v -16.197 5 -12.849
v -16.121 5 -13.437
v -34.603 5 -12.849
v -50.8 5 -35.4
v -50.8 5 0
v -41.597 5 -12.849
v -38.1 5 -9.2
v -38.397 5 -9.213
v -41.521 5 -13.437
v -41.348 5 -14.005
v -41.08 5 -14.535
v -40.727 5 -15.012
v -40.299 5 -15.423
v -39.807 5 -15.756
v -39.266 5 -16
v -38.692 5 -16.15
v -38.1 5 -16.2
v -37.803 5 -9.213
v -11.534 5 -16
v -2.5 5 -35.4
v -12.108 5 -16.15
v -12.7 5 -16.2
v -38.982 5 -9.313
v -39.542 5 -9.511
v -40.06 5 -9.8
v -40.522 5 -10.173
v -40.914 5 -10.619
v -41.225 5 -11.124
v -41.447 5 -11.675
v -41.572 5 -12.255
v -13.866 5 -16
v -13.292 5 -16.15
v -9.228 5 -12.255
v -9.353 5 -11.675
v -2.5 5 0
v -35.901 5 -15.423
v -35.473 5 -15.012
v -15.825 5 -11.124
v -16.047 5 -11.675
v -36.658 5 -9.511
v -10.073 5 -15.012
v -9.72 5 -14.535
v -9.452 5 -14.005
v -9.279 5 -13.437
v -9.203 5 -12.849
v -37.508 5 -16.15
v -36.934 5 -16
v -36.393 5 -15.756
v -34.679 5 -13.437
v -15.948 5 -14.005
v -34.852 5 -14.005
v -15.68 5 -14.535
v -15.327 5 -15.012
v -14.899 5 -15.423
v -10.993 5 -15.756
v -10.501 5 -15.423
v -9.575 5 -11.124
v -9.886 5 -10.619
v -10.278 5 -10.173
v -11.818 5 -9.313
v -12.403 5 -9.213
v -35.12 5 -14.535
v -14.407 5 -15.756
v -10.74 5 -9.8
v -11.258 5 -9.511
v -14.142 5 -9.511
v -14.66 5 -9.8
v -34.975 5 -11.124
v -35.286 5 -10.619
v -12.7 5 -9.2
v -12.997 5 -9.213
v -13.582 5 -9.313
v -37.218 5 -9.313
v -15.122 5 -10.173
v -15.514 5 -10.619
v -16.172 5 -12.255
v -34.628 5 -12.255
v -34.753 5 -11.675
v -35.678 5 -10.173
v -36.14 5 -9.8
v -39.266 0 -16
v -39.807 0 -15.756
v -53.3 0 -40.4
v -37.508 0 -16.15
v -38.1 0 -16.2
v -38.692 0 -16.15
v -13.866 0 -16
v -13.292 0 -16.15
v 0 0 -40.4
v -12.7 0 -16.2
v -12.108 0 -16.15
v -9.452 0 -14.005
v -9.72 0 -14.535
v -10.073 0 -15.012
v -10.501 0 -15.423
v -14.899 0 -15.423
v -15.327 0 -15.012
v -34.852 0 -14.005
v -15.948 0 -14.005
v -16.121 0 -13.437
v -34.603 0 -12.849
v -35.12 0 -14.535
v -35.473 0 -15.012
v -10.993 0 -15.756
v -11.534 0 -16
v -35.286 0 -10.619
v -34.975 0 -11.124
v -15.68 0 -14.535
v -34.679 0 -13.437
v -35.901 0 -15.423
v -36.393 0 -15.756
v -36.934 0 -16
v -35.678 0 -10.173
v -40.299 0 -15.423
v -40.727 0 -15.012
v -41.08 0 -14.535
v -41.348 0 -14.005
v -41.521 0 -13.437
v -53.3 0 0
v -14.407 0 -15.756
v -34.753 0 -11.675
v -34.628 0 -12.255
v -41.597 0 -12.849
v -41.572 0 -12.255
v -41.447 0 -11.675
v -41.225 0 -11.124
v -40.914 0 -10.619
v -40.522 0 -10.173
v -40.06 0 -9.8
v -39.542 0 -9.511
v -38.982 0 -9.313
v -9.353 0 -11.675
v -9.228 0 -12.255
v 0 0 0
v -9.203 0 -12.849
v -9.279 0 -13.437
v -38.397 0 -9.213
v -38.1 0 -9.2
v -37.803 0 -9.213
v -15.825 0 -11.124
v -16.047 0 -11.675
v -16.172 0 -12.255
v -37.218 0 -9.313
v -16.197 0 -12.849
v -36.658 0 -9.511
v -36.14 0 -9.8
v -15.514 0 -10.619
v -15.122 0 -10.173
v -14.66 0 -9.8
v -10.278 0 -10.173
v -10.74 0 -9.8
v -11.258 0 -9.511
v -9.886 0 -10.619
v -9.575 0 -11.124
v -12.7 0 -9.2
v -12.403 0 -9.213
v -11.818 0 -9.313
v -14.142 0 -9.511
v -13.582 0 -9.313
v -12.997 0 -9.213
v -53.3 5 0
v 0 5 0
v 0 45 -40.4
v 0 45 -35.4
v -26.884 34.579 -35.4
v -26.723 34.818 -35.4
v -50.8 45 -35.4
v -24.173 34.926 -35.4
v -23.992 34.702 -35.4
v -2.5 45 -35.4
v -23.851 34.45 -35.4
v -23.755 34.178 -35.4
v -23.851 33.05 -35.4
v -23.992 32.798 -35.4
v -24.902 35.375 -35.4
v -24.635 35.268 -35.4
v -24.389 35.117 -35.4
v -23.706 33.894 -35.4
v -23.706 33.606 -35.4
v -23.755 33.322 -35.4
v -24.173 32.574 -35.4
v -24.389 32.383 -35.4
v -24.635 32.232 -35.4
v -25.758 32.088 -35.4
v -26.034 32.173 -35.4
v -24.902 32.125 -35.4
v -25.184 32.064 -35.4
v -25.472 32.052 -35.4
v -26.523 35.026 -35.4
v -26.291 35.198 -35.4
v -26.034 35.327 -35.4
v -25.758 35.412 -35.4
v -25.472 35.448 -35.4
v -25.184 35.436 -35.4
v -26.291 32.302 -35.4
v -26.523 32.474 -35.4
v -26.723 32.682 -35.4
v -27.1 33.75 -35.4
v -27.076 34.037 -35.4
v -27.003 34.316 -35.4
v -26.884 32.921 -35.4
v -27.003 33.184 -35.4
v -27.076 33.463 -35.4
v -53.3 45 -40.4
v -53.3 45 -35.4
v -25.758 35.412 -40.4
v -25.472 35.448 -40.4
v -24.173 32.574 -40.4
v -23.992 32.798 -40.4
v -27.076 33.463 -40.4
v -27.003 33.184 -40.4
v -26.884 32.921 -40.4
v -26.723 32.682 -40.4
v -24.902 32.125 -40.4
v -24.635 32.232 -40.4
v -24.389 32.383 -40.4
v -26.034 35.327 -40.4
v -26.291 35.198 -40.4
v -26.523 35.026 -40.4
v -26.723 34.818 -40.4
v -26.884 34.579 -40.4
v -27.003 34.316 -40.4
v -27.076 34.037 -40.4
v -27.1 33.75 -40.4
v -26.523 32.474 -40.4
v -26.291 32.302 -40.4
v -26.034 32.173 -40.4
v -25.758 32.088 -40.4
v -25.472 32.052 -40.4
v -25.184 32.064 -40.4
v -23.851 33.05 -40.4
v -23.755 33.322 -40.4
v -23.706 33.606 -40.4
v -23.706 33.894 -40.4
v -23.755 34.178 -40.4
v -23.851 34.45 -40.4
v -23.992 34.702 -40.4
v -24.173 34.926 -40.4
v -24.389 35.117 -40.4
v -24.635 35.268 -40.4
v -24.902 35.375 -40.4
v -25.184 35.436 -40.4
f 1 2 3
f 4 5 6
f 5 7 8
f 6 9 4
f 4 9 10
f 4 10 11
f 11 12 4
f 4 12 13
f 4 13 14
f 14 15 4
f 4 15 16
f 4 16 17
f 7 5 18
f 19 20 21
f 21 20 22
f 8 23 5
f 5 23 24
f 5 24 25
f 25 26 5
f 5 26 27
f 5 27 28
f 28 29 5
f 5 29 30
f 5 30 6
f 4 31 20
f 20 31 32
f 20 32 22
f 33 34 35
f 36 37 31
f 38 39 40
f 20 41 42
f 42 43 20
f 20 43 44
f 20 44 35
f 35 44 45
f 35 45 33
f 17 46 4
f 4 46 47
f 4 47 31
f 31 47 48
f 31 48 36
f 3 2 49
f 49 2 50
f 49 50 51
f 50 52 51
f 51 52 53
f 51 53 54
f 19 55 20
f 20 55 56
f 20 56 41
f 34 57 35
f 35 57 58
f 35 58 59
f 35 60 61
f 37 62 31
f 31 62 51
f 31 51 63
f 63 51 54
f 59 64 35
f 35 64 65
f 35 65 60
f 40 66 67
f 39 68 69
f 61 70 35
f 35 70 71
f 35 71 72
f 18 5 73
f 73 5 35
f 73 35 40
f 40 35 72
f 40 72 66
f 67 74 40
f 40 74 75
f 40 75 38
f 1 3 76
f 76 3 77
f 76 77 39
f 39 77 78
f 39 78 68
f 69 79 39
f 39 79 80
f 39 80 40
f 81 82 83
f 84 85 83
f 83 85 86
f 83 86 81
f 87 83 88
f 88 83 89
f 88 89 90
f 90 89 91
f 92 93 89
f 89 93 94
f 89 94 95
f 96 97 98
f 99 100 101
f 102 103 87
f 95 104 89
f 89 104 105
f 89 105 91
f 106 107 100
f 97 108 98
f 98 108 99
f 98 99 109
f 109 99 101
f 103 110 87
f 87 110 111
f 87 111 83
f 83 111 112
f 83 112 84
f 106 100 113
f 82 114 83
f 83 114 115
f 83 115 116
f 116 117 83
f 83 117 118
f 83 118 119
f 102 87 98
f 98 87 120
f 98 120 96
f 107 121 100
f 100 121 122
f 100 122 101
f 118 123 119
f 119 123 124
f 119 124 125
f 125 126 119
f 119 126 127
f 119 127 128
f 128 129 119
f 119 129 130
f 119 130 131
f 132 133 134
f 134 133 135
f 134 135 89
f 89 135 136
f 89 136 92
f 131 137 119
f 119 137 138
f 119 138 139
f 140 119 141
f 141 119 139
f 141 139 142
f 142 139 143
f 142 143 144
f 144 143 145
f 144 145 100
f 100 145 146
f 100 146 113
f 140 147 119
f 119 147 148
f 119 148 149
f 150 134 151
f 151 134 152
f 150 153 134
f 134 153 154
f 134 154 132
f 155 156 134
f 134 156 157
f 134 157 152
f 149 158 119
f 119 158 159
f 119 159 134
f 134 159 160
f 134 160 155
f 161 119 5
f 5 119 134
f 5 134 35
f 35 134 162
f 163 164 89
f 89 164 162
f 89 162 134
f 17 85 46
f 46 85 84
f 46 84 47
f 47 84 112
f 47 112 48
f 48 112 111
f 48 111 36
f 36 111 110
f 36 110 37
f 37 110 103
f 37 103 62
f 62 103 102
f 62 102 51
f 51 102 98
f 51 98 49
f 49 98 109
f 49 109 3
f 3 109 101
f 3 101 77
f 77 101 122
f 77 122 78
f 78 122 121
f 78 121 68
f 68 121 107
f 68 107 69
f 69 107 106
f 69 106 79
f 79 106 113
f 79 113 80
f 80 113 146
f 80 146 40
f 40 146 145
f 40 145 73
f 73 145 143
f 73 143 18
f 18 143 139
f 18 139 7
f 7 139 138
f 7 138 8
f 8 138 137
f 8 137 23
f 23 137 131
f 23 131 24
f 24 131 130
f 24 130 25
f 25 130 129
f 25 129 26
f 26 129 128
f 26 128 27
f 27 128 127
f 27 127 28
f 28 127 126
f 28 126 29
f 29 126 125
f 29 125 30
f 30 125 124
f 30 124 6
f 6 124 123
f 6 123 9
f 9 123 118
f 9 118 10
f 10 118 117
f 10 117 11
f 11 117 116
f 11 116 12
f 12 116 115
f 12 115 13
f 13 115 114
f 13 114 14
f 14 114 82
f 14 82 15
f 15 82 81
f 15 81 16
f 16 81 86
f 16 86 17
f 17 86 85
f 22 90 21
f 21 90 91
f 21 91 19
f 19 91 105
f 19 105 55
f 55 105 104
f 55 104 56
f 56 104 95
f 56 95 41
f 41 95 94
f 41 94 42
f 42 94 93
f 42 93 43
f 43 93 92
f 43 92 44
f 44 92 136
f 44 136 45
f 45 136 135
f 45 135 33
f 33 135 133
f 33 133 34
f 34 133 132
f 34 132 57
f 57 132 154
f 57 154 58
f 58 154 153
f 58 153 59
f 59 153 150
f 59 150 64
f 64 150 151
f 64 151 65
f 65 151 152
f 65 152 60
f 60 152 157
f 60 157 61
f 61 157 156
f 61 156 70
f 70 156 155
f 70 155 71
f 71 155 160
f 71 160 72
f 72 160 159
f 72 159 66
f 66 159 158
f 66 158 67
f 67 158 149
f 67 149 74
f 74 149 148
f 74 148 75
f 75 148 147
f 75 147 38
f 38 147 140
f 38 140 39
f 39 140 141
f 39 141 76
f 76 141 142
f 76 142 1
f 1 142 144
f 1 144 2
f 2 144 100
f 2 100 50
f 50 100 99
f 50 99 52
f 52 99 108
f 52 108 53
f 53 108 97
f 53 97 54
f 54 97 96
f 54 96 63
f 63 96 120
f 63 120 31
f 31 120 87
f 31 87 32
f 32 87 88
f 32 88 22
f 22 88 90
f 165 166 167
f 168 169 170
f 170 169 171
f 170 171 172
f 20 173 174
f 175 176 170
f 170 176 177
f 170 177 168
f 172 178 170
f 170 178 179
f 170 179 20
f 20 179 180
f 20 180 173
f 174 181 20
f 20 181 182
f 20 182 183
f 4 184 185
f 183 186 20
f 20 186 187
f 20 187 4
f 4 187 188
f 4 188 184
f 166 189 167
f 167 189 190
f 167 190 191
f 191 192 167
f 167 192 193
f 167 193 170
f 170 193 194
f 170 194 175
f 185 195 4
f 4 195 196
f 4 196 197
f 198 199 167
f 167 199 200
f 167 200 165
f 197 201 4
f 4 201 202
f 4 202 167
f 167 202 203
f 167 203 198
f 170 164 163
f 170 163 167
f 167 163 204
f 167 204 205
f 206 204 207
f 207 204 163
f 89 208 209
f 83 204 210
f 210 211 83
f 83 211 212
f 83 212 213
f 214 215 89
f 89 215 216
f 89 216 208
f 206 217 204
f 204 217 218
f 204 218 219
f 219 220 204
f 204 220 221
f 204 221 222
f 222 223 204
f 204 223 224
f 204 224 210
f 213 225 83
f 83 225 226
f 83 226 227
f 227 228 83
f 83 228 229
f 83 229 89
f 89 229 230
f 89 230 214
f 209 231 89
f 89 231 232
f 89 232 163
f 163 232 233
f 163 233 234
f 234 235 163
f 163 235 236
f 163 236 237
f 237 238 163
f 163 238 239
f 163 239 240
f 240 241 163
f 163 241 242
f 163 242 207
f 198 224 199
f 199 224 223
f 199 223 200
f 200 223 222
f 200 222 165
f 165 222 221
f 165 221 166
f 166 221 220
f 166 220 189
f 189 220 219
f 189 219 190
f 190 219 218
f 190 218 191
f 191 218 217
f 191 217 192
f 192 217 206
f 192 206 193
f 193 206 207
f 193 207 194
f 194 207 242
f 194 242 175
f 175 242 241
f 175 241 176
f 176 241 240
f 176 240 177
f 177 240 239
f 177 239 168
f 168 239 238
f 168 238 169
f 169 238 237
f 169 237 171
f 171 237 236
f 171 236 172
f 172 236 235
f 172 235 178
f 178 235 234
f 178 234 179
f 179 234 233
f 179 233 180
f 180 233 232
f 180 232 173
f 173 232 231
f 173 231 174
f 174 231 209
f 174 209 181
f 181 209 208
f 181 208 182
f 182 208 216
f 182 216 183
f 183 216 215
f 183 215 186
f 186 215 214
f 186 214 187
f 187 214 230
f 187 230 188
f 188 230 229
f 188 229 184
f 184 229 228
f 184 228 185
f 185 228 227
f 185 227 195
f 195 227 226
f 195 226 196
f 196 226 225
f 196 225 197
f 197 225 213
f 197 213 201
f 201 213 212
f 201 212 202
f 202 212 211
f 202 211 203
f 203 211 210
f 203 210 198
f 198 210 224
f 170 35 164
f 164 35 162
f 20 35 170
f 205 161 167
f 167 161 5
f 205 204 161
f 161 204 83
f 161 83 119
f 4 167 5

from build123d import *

# Parameters (mm, degrees)
SKETCH1_W           = 50.8
SKETCH1_H           = 35.4
SKETCH1_R           = 3.5
BOSS_EXTRUDE1_DEPTH = 5
SKETCH2_W           = 50.8
SKETCH2_H           = 45
BOSS_EXTRUDE2_DEPTH = 5
SKETCH3_R           = 1.7
CUT_EXTRUDE1_DEPTH  = 5
BOSS_EXTRUDE3_DEPTH = 2.5
BOSS_EXTRUDE4_DEPTH = 2.5


with BuildPart() as part:
    # Sketch1 → Boss-Extrude1 (new body)
    with BuildSketch(Plane(origin=(0, 0, 0), x_dir=(1, 0, 0), z_dir=(0, 1, 0))):
        with Locations((-25.4, 17.7)):
            Rectangle(SKETCH1_W, SKETCH1_H)
        with Locations((-38.1, 12.7)):
            Circle(SKETCH1_R, mode=Mode.SUBTRACT)
        with Locations((-12.7, 12.7)):
            Circle(SKETCH1_R, mode=Mode.SUBTRACT)
    extrude(amount=BOSS_EXTRUDE1_DEPTH)

    # Sketch2 → Boss-Extrude2 (add)
    with BuildSketch(Plane(origin=(0, 0, -35.4), x_dir=(-1, 0, 0), z_dir=(0, 0, -1))):
        with Locations((25.4, 22.5)):
            Rectangle(SKETCH2_W, SKETCH2_H)
    extrude(amount=BOSS_EXTRUDE2_DEPTH)

    # Sketch3 → Cut-Extrude1 (cut)
    with BuildSketch(Plane(origin=(0, 0, -40.4), x_dir=(-1, 0, 0), z_dir=(0, 0, -1))):
        with Locations((25.4, 33.75)):
            Circle(SKETCH3_R)
    extrude(amount=-CUT_EXTRUDE1_DEPTH, mode=Mode.SUBTRACT)

    # Sketch4 → Boss-Extrude3 (add)
    with BuildSketch(Plane(origin=(0, 0, 0), x_dir=(0, 0, -1), z_dir=(1, 0, 0))):
        Polygon((0, 5), (35.4, 45), (40.4, 45), (40.4, 0), (0, 0), align=None)
    extrude(amount=-BOSS_EXTRUDE3_DEPTH)

    # Sketch5 → Boss-Extrude4 (add)
    with BuildSketch(Plane.ZY.offset(50.8)):
        Polygon((-35.4, 45), (-40.4, 45), (-40.4, 0), (0, 0), (0, 5), align=None)
    extrude(amount=BOSS_EXTRUDE4_DEPTH)


solid = part.part
